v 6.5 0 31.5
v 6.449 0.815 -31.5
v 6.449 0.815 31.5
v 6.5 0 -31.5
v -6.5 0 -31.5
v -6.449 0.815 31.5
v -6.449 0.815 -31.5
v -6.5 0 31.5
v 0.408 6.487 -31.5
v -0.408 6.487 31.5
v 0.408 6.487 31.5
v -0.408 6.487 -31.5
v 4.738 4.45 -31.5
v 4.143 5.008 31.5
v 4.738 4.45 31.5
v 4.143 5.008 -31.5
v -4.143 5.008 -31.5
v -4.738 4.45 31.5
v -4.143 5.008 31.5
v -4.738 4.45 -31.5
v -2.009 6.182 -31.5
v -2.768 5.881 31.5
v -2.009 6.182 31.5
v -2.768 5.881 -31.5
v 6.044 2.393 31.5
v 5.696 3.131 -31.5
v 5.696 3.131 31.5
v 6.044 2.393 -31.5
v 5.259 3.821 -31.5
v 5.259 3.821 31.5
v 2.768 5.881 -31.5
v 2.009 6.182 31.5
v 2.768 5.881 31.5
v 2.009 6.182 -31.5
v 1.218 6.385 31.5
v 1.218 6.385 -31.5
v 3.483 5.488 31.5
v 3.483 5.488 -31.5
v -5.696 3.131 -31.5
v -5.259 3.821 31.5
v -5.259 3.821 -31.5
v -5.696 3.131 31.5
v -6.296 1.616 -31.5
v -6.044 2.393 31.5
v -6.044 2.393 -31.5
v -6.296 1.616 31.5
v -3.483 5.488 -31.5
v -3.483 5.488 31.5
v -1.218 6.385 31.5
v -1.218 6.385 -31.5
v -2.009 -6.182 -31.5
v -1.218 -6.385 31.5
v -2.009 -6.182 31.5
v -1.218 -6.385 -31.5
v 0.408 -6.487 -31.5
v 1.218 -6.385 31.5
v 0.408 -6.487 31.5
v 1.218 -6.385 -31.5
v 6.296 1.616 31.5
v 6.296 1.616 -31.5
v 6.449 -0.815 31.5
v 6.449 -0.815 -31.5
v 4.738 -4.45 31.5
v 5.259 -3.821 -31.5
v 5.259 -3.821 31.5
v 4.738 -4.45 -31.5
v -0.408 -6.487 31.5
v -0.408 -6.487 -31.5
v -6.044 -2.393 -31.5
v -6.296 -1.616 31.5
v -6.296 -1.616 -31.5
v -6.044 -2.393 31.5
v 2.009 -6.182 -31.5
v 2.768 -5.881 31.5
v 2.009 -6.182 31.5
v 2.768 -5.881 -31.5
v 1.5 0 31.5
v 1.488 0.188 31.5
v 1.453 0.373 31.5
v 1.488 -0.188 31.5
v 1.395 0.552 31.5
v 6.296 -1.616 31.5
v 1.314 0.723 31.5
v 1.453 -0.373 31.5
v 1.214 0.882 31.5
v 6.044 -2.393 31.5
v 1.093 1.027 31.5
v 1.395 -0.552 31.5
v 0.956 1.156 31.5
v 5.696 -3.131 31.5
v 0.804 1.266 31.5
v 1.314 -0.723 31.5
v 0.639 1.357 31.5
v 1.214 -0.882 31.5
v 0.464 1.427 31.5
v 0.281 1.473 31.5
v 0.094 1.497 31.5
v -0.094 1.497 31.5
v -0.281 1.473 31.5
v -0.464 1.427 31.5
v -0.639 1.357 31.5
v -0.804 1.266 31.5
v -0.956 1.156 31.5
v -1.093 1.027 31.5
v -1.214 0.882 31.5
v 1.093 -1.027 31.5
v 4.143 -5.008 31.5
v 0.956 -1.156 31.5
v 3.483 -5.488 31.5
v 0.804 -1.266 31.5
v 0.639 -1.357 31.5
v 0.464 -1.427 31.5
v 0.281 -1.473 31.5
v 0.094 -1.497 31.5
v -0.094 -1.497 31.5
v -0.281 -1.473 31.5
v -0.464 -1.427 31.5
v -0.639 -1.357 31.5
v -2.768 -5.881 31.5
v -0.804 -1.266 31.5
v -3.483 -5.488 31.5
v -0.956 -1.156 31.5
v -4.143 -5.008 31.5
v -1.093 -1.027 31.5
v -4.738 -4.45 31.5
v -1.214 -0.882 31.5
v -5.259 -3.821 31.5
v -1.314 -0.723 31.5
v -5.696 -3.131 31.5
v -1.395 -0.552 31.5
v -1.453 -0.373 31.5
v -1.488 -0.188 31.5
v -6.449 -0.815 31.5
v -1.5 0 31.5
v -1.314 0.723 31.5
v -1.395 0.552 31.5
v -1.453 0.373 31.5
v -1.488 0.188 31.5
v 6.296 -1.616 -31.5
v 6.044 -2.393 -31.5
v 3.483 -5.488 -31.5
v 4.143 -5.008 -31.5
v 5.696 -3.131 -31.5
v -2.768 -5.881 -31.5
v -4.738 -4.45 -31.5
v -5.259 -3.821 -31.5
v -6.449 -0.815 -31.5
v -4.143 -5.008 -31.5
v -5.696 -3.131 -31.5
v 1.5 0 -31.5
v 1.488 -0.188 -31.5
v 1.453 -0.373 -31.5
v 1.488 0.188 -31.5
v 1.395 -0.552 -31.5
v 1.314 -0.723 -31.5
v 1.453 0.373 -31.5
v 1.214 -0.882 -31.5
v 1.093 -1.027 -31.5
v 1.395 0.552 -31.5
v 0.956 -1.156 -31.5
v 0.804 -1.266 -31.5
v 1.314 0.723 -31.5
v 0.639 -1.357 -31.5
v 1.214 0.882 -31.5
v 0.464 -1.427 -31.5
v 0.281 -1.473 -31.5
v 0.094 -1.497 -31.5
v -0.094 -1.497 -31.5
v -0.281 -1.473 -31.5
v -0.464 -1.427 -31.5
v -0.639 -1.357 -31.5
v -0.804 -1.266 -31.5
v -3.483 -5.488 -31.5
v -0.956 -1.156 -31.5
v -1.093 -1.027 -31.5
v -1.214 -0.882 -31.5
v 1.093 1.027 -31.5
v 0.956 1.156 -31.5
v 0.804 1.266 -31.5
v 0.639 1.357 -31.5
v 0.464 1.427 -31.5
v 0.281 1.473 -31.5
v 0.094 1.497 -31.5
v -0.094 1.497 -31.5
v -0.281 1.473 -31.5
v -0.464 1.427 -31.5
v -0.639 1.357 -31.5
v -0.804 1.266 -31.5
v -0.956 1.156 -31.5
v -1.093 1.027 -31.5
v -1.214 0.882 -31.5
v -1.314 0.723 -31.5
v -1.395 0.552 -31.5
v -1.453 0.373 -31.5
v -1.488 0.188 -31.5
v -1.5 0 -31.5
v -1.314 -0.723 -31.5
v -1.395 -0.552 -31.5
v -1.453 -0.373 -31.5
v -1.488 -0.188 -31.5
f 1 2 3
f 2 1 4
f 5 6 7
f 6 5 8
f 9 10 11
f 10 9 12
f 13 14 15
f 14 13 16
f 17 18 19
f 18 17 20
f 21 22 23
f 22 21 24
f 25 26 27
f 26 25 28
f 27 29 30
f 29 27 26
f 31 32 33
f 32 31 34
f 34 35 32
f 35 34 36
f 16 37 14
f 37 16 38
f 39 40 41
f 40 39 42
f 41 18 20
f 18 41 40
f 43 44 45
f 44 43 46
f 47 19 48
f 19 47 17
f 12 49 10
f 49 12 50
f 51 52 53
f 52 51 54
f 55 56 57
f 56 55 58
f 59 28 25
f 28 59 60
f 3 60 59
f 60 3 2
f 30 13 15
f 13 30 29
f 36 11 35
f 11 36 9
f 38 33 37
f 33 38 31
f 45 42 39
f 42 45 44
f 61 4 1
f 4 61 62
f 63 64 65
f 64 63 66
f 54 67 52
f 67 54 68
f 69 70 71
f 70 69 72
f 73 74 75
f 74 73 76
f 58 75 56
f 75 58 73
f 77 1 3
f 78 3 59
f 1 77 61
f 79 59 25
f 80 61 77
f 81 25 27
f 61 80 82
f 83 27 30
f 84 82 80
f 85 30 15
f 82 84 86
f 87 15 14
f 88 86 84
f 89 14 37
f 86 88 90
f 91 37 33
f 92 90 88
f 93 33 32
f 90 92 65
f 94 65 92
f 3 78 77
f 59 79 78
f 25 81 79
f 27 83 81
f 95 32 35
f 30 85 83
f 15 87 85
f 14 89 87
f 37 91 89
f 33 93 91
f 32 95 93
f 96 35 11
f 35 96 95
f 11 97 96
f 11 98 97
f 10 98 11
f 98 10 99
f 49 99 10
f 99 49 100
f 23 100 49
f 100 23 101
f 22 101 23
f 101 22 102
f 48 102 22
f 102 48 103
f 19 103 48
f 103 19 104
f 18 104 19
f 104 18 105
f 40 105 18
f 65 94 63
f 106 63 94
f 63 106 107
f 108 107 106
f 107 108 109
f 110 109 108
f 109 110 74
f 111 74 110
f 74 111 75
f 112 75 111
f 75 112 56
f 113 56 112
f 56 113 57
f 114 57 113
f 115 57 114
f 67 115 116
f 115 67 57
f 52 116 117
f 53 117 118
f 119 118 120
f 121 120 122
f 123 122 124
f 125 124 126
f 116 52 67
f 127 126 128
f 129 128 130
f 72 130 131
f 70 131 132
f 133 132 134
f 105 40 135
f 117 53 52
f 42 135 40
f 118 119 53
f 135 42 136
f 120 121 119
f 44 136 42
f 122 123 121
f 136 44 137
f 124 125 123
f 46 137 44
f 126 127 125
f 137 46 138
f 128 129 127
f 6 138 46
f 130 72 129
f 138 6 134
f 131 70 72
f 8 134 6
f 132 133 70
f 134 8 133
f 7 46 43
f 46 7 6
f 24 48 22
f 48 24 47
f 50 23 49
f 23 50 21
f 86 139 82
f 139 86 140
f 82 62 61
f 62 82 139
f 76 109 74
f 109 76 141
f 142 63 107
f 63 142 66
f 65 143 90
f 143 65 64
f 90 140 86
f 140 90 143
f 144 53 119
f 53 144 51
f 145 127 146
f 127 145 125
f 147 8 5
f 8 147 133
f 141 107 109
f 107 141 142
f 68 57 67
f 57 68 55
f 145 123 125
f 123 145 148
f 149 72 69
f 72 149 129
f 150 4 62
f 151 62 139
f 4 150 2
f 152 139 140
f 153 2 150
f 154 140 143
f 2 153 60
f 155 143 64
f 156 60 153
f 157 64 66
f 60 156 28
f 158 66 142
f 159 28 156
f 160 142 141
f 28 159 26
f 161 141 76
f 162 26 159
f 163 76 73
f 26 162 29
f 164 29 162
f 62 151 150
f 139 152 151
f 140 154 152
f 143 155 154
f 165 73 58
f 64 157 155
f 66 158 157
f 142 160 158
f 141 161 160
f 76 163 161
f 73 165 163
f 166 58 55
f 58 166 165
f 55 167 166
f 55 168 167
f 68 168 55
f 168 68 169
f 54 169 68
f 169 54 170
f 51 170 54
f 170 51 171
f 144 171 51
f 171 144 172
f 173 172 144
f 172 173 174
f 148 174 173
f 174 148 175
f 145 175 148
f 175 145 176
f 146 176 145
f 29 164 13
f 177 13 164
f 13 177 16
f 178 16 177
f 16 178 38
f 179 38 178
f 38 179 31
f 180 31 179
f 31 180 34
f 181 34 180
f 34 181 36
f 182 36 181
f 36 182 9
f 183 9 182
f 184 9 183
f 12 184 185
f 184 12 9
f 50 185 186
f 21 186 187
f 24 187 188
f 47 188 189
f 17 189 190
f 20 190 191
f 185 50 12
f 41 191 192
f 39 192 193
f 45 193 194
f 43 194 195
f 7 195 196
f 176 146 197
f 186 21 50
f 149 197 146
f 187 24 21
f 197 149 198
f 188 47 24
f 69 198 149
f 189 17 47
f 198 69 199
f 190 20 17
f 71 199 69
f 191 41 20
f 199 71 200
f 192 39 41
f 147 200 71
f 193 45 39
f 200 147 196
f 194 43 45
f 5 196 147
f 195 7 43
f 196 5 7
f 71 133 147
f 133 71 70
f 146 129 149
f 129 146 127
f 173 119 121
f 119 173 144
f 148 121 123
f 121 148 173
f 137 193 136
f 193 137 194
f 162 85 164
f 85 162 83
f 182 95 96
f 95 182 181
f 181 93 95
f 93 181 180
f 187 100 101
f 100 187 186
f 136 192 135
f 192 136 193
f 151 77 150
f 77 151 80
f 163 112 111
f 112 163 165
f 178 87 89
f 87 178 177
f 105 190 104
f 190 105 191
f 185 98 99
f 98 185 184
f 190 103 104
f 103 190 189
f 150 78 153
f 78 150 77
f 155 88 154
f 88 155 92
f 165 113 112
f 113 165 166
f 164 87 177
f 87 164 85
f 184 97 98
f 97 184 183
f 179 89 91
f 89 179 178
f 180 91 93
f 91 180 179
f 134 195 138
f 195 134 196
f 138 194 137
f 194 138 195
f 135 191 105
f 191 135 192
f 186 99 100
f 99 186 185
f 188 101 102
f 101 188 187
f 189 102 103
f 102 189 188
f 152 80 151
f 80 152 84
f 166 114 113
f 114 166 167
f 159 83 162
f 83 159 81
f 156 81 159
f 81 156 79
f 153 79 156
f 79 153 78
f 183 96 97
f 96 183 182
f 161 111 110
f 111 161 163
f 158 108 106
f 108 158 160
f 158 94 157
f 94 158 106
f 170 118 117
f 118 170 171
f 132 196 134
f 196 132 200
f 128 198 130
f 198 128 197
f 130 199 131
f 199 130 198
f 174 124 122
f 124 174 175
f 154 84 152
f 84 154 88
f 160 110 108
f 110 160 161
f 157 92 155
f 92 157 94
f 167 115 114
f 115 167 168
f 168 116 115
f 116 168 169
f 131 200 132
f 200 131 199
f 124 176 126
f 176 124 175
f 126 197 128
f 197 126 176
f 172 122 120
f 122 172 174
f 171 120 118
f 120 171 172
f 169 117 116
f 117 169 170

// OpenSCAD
$fn = 50;


difference() {
	union() {
		translate(v = [0, 0, -31.5000000000]) {
			cylinder(h = 63, r = 6.5000000000);
		}
	}
	union() {
		translate(v = [0, 0, -100.0000000000]) {
			cylinder(h = 200, r = 1.5000000000);
		}
	}
}
